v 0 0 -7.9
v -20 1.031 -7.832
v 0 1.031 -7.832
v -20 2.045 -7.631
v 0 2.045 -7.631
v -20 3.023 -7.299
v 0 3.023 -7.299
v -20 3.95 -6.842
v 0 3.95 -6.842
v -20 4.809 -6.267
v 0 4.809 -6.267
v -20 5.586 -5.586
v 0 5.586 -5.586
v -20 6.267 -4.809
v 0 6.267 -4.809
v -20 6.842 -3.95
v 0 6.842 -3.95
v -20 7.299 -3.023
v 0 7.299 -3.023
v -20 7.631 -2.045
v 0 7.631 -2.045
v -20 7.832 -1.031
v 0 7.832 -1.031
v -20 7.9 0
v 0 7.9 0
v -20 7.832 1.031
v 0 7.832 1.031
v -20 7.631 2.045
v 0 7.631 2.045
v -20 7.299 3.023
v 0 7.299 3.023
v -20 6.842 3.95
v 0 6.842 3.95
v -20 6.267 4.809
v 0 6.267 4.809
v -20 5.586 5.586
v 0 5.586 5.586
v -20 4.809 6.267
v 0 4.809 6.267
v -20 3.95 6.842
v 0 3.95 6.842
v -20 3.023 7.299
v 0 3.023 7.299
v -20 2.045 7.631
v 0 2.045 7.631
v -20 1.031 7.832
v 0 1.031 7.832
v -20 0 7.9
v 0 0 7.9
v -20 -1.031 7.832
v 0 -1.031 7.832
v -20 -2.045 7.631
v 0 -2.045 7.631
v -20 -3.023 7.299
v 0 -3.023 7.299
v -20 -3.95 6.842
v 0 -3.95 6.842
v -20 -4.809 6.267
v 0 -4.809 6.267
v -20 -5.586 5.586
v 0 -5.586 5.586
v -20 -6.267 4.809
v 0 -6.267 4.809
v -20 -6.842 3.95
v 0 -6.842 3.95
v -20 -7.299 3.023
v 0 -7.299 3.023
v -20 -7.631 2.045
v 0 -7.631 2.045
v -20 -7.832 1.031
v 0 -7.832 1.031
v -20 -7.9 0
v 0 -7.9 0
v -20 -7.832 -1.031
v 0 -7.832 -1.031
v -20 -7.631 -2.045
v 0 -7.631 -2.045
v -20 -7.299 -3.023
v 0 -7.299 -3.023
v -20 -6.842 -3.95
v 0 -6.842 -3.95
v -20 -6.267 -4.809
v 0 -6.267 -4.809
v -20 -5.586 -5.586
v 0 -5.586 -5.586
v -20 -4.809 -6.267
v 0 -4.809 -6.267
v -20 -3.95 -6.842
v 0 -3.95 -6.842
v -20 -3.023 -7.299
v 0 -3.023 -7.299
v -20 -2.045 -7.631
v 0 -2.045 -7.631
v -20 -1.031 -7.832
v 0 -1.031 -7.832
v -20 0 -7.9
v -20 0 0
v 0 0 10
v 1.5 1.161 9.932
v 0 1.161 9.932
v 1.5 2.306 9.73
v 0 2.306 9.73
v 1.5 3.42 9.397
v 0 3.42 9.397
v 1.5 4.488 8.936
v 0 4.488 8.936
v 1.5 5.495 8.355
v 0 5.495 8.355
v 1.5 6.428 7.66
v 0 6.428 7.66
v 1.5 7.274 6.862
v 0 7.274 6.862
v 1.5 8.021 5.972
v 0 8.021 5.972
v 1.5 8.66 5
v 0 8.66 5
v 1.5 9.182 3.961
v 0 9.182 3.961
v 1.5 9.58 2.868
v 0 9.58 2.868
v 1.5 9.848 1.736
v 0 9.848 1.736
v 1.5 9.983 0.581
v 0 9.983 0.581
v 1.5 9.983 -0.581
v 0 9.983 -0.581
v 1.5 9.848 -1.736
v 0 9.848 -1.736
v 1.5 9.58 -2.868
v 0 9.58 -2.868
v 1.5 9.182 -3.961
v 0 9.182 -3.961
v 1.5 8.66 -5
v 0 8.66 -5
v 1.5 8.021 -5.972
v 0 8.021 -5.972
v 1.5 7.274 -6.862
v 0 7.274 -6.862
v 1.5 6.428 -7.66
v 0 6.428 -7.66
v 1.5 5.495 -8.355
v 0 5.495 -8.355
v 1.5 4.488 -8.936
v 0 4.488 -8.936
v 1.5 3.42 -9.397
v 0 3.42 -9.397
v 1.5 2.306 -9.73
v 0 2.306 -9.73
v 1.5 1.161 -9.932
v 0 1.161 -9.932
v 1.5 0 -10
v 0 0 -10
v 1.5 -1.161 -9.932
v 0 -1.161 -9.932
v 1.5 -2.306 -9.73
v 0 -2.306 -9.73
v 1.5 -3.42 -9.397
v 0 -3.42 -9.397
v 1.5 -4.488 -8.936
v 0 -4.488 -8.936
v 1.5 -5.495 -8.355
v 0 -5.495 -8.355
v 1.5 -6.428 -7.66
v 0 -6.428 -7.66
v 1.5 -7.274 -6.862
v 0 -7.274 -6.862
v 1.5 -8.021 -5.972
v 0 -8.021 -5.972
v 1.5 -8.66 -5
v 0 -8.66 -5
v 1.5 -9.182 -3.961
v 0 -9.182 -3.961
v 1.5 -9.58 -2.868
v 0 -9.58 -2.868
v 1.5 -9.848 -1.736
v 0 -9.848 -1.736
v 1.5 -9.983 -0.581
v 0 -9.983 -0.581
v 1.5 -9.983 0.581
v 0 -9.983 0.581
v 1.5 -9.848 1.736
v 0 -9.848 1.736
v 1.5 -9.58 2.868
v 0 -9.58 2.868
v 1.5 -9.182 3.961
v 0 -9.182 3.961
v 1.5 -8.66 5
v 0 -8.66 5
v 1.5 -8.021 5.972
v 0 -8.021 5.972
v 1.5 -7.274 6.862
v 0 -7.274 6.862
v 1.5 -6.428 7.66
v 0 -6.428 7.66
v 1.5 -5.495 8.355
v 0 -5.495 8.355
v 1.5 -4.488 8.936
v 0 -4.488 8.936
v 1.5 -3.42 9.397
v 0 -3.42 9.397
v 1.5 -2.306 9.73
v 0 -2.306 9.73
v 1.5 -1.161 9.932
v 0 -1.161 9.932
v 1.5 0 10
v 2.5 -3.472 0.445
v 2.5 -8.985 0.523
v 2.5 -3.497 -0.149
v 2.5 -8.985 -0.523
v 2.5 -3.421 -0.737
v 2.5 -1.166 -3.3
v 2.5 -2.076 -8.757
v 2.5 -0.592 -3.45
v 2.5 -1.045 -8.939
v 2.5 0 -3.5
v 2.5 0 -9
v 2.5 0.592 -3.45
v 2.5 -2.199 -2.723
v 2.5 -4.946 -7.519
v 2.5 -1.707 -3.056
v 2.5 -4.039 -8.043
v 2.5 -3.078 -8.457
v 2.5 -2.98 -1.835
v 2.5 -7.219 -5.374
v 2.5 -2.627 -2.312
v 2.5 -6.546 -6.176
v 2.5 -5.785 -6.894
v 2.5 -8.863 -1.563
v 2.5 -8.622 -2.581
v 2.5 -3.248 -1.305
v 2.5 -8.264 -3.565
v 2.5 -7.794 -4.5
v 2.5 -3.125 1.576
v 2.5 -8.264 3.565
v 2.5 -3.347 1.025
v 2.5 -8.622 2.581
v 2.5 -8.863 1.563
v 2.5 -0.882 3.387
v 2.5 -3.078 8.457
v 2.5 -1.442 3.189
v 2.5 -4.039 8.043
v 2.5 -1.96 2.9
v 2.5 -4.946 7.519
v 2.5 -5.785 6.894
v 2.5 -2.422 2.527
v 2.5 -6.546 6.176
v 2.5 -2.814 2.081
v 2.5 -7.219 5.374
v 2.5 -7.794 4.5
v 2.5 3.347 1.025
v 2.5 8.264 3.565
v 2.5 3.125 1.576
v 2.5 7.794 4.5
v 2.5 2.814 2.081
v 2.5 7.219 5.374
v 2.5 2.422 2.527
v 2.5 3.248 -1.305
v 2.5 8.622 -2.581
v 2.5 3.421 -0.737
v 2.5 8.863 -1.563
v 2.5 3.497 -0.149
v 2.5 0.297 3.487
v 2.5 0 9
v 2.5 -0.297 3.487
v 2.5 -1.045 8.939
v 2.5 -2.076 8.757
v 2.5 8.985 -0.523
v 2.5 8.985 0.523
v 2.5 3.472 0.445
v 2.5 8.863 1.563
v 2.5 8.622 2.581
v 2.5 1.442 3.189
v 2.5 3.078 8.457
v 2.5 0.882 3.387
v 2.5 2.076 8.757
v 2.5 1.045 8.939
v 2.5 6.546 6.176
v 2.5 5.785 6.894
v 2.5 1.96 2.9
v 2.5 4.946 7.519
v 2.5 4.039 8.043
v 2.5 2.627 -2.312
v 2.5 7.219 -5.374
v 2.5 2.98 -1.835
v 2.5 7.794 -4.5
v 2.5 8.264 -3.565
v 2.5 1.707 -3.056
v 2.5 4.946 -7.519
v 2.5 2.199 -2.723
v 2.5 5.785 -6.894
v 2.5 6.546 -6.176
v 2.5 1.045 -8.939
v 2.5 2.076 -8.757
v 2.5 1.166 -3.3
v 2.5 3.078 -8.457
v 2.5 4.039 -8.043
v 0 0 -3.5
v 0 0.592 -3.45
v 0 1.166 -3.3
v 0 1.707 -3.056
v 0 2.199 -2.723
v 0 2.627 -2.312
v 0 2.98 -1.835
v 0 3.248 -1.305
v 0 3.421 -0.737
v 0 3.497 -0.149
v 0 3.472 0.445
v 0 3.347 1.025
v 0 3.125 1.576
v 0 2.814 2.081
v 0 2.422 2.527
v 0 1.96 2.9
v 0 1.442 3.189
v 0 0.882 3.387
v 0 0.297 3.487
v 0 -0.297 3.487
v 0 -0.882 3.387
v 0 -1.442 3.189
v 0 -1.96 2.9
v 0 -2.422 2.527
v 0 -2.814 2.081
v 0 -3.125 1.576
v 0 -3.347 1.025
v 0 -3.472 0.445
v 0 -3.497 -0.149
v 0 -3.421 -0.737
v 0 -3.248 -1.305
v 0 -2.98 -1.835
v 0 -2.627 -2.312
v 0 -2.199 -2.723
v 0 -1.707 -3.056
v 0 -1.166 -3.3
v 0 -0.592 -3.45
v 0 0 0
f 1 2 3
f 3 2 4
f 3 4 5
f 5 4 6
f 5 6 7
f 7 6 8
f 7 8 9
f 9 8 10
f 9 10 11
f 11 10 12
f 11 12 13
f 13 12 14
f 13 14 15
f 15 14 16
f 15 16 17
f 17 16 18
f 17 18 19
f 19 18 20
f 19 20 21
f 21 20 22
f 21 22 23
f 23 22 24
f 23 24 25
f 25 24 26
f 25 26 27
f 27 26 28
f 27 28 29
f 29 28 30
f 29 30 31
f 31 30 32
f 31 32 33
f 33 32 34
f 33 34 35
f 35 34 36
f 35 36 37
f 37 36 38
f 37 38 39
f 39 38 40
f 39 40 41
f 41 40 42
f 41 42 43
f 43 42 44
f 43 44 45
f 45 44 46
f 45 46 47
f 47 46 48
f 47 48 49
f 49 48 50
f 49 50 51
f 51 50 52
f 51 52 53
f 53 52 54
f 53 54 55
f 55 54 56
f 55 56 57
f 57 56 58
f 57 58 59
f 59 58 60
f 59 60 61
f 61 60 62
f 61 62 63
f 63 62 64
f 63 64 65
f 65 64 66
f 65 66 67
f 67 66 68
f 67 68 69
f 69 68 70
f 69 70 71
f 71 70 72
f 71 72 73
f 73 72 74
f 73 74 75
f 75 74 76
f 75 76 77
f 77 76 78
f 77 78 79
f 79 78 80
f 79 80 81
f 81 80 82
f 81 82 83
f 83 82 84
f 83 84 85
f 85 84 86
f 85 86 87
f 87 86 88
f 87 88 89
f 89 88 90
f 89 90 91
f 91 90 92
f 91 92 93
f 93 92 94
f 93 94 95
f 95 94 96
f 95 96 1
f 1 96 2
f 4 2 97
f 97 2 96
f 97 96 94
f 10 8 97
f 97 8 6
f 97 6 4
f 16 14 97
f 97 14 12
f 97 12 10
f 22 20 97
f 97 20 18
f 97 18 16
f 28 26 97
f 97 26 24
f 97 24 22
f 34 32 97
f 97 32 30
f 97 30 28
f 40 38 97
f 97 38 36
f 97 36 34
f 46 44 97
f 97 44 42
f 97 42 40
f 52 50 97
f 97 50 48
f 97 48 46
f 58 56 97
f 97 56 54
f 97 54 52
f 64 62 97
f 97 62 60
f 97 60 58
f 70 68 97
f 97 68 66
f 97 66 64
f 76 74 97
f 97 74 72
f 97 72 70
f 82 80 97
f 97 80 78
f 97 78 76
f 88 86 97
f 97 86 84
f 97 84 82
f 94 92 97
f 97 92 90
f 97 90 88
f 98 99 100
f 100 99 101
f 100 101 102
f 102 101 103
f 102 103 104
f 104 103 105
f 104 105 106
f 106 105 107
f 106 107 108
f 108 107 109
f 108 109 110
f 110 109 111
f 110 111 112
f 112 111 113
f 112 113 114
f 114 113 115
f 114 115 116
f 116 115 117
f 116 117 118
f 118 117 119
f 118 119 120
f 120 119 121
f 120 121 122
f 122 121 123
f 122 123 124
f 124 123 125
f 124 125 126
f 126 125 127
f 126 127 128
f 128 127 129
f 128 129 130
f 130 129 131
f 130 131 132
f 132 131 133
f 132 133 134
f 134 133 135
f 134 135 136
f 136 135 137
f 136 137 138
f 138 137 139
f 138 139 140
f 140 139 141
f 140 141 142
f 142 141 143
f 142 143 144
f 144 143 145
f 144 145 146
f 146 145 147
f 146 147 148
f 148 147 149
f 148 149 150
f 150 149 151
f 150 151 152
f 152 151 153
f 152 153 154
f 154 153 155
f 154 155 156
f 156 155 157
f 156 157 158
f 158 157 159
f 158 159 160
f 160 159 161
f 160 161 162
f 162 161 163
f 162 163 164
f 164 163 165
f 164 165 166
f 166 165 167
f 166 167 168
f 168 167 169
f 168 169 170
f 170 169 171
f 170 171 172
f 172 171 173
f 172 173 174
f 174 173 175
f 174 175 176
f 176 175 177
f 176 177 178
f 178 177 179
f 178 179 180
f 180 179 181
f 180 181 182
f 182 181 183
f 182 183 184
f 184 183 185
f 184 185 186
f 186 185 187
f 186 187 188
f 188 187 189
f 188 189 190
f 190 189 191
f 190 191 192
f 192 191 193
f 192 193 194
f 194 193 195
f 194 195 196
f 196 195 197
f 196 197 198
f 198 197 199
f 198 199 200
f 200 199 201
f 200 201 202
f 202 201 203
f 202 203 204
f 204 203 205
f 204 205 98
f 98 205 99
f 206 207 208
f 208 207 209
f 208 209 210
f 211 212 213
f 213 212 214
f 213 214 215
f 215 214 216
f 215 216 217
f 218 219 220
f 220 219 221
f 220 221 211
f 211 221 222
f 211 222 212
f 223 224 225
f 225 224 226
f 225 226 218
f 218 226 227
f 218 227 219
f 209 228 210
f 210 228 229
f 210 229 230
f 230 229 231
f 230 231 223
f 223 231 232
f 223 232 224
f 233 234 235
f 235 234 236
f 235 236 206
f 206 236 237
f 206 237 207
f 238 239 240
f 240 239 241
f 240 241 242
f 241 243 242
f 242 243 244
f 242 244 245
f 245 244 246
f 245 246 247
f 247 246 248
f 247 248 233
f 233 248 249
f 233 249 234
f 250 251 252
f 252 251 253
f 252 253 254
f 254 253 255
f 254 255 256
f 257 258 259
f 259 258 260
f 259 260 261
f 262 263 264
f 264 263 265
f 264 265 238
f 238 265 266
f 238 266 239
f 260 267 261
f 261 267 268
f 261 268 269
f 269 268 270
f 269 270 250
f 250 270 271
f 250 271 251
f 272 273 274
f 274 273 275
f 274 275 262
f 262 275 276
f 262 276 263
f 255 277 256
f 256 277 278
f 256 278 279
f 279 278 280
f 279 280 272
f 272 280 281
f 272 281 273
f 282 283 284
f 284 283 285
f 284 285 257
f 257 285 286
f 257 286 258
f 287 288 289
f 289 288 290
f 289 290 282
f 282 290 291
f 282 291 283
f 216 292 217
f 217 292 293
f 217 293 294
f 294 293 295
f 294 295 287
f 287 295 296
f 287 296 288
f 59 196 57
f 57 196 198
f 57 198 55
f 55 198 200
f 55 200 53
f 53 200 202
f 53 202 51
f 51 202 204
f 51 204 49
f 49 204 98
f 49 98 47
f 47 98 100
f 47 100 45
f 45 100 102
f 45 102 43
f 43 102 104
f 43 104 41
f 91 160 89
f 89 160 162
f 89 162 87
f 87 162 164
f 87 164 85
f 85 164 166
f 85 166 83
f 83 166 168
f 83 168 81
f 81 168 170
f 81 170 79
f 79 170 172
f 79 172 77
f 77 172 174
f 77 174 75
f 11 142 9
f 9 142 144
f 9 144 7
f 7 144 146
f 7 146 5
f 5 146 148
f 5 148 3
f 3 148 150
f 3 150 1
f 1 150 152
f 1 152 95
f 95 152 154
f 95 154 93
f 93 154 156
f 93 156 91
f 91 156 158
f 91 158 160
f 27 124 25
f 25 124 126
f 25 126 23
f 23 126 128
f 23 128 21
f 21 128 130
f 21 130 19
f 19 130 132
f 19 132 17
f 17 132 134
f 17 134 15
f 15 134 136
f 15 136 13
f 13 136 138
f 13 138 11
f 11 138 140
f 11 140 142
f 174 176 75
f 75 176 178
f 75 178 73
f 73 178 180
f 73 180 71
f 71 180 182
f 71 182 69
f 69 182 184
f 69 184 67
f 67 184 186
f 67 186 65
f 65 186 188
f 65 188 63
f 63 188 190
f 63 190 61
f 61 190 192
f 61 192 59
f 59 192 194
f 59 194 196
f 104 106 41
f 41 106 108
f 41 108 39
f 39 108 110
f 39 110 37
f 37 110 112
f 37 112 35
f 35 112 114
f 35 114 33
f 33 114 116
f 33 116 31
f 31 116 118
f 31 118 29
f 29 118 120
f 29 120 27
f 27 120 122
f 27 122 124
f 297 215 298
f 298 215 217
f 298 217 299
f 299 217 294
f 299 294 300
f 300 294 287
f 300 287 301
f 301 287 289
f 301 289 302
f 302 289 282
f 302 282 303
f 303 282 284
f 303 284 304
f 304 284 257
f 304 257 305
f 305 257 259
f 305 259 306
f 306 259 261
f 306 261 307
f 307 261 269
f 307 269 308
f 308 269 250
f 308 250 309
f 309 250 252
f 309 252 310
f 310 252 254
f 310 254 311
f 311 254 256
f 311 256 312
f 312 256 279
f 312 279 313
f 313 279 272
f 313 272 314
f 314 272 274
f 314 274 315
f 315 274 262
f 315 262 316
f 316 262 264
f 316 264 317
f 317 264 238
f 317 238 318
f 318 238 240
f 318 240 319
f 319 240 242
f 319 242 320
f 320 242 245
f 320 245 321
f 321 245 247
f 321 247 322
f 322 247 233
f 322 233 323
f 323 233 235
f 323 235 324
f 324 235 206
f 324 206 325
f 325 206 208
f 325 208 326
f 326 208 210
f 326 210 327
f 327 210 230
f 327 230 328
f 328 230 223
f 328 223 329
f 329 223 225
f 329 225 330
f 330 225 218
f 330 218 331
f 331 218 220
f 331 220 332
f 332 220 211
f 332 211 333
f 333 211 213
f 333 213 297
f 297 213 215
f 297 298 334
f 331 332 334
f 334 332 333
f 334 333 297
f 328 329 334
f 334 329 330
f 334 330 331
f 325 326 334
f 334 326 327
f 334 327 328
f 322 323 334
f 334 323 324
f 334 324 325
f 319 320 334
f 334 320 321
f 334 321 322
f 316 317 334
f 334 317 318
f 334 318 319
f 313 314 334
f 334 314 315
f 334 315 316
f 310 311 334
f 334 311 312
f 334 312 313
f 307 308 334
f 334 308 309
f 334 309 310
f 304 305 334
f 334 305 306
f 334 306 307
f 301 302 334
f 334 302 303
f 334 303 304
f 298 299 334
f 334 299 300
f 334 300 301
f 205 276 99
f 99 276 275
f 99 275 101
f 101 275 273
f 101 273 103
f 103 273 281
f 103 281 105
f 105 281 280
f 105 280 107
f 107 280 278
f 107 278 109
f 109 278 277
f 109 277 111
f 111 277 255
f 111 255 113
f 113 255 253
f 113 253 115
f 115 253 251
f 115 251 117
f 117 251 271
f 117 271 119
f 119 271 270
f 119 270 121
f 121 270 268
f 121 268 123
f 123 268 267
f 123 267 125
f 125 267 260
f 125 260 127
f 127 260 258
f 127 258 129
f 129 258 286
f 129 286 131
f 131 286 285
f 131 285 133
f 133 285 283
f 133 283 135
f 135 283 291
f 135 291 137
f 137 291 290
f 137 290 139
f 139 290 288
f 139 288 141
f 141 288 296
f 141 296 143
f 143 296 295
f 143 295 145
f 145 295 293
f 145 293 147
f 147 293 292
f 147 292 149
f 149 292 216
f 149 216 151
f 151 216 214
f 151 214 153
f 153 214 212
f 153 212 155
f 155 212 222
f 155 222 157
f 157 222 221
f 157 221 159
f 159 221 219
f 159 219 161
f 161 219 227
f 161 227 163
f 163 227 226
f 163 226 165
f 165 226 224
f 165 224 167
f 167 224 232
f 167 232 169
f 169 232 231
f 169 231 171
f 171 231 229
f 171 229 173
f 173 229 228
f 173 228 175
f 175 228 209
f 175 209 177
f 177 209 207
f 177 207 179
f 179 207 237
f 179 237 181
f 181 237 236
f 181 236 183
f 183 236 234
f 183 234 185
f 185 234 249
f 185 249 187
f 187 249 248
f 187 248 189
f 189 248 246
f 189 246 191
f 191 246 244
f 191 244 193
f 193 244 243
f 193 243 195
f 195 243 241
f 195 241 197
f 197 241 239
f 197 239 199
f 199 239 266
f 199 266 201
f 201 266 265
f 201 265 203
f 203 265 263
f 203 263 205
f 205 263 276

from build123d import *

# Parameters (mm, degrees)
SKETCH_1_R          = 7.9
EXTRUDE_1_DEPTH     = 20
SKETCH_6_R          = 10
EXTRUDE_2_DEPTH     = 2.5
SKETCH_7_R          = 3.5
CUT_EXTRUDE_3_DEPTH = 2.5
CHAMFER_1_SIZE      = 1


with BuildPart() as part:
    # 草图1 → 凸台-拉伸1 (new body)
    with BuildSketch(Plane(origin=(0, 0, 0), x_dir=(0, 0, -1), z_dir=(1, 0, 0))):
        Circle(SKETCH_1_R)
    extrude(amount=-EXTRUDE_1_DEPTH)

    # 草图6 → 凸台-拉伸2 (add)
    with BuildSketch(Plane(origin=(0, 0, 0), x_dir=(0, 0, -1), z_dir=(1, 0, 0))):
        Circle(SKETCH_6_R)
    extrude(amount=EXTRUDE_2_DEPTH)

    # 草图7 → 切除-拉伸3 (cut)
    with BuildSketch(Plane(origin=(2.5, 0, 0), x_dir=(0, 0, -1), z_dir=(1, 0, 0))):
        Circle(SKETCH_7_R)
    extrude(amount=-CUT_EXTRUDE_3_DEPTH, mode=Mode.SUBTRACT)

    # 倒角1
    chamfer_1_edges = [part.edges().sort_by_distance(p)[0] for p in [
        (2.5, 0, 10),
    ]]
    chamfer(chamfer_1_edges, length=CHAMFER_1_SIZE)


solid = part.part
